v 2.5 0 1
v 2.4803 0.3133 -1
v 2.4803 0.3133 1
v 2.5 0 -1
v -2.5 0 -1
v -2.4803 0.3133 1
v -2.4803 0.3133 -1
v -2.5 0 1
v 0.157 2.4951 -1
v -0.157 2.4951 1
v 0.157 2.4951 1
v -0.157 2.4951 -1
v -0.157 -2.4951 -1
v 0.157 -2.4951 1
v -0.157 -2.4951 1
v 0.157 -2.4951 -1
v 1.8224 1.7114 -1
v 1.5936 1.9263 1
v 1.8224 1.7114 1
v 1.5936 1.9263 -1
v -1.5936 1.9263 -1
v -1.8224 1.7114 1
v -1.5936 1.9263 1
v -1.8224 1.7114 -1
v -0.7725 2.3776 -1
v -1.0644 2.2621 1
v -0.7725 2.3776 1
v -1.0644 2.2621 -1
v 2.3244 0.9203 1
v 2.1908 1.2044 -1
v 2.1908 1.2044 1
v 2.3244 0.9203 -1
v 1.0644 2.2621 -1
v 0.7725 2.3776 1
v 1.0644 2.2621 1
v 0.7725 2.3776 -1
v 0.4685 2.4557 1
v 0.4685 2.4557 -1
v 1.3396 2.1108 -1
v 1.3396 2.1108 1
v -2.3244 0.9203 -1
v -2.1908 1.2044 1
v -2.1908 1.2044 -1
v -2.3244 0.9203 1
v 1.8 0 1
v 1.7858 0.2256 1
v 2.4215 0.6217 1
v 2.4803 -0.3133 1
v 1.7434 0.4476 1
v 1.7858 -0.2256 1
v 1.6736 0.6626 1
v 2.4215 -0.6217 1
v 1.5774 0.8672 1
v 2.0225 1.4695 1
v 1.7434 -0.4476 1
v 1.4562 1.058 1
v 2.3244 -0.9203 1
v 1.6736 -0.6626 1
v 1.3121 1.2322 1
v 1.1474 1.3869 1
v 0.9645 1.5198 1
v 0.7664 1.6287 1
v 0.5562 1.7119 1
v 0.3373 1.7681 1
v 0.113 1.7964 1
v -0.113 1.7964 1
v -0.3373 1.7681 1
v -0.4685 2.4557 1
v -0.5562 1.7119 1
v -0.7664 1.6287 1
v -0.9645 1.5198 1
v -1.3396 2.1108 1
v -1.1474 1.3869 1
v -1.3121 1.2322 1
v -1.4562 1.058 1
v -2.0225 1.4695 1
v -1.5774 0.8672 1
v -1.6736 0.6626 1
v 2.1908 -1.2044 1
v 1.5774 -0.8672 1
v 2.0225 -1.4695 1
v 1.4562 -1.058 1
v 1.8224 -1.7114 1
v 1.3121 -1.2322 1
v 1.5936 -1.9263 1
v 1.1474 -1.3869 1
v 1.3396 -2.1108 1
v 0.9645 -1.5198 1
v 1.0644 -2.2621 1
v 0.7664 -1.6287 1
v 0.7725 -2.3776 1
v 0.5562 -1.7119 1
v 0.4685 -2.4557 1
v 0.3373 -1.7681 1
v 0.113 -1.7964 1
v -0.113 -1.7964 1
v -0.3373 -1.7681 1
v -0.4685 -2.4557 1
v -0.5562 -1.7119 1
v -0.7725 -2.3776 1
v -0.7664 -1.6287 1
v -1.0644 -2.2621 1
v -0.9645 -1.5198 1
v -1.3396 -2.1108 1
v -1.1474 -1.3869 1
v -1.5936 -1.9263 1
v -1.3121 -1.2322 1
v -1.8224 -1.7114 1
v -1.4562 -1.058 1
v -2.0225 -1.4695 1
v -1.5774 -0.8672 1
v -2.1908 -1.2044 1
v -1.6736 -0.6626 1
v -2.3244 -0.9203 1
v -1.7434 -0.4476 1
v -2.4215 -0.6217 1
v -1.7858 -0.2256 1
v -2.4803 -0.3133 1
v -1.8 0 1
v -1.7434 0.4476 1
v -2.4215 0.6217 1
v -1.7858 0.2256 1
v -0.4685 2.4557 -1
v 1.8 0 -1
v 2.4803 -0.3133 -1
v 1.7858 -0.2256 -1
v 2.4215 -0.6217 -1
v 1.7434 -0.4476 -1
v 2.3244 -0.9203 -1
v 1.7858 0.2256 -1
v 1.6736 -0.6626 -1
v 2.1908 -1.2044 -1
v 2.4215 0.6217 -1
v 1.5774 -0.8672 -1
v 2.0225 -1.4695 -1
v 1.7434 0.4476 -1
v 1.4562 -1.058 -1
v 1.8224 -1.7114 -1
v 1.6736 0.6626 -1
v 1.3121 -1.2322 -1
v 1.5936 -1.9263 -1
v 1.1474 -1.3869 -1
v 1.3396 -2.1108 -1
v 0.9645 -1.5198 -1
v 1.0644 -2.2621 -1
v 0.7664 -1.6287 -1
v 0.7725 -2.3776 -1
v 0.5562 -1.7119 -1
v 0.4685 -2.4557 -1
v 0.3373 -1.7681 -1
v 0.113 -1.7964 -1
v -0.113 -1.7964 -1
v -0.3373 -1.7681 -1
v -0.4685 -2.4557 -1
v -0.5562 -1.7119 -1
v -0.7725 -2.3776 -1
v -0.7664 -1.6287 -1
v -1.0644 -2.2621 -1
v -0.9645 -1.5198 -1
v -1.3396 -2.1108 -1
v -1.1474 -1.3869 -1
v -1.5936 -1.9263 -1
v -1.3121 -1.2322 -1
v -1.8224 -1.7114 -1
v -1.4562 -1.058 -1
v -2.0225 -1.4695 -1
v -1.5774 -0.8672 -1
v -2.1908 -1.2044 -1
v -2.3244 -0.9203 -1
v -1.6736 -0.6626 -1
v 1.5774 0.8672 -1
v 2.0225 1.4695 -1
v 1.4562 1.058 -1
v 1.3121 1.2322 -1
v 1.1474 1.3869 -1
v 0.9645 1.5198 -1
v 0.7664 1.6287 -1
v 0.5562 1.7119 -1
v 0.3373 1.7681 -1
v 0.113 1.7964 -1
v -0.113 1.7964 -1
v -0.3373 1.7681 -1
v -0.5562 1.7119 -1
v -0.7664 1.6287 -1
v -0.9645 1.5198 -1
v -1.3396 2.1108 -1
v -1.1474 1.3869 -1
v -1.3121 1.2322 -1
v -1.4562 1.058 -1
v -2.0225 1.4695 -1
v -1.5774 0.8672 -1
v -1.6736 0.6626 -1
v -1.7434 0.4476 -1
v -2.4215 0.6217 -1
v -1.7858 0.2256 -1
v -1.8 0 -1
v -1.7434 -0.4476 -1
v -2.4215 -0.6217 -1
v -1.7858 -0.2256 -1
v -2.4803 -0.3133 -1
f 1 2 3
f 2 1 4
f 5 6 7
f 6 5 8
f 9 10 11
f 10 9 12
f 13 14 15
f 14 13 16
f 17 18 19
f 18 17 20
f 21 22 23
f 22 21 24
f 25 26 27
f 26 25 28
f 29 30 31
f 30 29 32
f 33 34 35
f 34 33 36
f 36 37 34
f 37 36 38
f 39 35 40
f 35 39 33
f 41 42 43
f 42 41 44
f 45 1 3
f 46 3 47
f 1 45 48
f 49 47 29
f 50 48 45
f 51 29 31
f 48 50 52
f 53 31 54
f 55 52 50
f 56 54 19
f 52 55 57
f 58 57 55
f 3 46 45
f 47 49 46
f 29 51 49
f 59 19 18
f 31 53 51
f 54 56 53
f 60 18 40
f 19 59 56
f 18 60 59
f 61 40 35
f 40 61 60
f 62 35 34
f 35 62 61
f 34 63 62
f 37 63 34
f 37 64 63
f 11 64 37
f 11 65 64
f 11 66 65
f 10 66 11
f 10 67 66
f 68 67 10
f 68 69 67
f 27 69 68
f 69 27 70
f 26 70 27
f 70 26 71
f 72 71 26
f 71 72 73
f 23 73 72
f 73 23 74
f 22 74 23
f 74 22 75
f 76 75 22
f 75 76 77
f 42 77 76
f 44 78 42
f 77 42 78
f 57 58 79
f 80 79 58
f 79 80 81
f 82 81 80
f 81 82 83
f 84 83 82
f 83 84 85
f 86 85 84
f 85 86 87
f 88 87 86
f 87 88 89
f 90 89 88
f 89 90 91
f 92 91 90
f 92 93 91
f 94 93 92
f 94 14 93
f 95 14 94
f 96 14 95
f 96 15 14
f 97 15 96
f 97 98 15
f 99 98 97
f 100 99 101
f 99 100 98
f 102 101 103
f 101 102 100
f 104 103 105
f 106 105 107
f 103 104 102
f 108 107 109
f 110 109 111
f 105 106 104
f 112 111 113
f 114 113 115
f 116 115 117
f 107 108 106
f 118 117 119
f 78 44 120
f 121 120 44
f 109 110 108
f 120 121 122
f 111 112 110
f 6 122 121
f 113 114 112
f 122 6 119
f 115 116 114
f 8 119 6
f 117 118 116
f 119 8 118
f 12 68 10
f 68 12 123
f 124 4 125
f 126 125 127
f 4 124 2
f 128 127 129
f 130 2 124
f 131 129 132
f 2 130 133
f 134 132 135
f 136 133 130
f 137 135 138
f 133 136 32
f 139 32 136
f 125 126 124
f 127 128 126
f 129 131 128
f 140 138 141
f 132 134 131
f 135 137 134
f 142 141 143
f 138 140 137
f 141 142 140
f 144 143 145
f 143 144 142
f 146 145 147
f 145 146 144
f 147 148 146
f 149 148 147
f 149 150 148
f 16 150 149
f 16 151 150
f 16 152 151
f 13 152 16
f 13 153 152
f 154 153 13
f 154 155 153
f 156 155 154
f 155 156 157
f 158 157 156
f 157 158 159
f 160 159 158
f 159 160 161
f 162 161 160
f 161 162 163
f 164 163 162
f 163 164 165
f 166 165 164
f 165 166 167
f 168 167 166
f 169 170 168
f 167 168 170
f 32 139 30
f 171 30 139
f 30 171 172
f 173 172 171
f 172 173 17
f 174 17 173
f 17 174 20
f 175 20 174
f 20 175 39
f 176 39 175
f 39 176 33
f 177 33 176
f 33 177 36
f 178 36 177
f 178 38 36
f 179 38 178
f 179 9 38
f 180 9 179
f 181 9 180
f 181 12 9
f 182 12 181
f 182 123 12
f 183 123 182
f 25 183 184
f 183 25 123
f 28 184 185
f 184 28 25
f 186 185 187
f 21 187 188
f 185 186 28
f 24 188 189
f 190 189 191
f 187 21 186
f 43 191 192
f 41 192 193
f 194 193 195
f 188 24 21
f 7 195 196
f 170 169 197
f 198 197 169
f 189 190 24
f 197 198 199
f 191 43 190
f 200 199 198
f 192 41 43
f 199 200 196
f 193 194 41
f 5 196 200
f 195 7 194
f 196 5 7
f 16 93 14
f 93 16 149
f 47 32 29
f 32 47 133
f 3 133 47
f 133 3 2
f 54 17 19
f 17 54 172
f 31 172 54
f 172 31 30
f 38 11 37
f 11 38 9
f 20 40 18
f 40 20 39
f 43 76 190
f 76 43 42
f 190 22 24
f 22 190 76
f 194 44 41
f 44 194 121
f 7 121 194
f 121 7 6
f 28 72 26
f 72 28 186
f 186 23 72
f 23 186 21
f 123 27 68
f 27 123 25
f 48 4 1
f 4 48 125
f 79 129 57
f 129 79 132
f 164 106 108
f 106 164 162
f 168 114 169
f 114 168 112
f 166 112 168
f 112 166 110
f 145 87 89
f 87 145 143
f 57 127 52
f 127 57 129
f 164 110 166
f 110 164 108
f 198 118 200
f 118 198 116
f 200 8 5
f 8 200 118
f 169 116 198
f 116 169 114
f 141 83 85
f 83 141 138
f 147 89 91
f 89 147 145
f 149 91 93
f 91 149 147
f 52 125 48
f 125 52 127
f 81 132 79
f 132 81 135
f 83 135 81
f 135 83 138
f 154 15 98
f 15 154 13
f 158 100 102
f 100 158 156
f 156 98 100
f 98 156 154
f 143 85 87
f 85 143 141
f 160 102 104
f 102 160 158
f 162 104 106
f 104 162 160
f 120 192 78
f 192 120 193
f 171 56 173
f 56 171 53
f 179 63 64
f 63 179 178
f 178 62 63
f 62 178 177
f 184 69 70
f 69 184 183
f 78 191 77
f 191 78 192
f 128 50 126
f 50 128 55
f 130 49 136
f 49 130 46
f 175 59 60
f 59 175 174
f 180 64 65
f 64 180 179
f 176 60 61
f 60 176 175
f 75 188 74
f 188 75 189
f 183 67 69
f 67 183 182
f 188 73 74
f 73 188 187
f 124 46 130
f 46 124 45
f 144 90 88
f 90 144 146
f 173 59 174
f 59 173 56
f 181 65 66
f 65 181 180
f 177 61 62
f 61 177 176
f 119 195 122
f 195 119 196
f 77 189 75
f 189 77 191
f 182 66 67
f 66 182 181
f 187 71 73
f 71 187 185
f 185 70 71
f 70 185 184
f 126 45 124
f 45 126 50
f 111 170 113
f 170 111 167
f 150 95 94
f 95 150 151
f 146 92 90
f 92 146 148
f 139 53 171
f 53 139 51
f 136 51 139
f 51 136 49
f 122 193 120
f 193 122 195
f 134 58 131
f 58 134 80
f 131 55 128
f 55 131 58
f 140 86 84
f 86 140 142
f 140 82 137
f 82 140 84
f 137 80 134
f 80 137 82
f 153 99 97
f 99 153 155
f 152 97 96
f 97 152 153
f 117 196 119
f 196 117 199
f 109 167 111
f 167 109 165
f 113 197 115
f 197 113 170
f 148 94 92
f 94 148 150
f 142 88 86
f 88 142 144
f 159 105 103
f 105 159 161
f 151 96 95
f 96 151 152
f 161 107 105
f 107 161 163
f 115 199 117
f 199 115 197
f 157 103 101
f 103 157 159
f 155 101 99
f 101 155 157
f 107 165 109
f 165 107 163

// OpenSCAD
$fn = 50;


difference() {
	union() {
		translate(v = [0, 0, -1.0000000000]) {
			cylinder(h = 2, r = 2.5000000000);
		}
	}
	union() {
		translate(v = [0, 0, -100.0000000000]) {
			cylinder(h = 200, r = 1.8000000000);
		}
	}
}
